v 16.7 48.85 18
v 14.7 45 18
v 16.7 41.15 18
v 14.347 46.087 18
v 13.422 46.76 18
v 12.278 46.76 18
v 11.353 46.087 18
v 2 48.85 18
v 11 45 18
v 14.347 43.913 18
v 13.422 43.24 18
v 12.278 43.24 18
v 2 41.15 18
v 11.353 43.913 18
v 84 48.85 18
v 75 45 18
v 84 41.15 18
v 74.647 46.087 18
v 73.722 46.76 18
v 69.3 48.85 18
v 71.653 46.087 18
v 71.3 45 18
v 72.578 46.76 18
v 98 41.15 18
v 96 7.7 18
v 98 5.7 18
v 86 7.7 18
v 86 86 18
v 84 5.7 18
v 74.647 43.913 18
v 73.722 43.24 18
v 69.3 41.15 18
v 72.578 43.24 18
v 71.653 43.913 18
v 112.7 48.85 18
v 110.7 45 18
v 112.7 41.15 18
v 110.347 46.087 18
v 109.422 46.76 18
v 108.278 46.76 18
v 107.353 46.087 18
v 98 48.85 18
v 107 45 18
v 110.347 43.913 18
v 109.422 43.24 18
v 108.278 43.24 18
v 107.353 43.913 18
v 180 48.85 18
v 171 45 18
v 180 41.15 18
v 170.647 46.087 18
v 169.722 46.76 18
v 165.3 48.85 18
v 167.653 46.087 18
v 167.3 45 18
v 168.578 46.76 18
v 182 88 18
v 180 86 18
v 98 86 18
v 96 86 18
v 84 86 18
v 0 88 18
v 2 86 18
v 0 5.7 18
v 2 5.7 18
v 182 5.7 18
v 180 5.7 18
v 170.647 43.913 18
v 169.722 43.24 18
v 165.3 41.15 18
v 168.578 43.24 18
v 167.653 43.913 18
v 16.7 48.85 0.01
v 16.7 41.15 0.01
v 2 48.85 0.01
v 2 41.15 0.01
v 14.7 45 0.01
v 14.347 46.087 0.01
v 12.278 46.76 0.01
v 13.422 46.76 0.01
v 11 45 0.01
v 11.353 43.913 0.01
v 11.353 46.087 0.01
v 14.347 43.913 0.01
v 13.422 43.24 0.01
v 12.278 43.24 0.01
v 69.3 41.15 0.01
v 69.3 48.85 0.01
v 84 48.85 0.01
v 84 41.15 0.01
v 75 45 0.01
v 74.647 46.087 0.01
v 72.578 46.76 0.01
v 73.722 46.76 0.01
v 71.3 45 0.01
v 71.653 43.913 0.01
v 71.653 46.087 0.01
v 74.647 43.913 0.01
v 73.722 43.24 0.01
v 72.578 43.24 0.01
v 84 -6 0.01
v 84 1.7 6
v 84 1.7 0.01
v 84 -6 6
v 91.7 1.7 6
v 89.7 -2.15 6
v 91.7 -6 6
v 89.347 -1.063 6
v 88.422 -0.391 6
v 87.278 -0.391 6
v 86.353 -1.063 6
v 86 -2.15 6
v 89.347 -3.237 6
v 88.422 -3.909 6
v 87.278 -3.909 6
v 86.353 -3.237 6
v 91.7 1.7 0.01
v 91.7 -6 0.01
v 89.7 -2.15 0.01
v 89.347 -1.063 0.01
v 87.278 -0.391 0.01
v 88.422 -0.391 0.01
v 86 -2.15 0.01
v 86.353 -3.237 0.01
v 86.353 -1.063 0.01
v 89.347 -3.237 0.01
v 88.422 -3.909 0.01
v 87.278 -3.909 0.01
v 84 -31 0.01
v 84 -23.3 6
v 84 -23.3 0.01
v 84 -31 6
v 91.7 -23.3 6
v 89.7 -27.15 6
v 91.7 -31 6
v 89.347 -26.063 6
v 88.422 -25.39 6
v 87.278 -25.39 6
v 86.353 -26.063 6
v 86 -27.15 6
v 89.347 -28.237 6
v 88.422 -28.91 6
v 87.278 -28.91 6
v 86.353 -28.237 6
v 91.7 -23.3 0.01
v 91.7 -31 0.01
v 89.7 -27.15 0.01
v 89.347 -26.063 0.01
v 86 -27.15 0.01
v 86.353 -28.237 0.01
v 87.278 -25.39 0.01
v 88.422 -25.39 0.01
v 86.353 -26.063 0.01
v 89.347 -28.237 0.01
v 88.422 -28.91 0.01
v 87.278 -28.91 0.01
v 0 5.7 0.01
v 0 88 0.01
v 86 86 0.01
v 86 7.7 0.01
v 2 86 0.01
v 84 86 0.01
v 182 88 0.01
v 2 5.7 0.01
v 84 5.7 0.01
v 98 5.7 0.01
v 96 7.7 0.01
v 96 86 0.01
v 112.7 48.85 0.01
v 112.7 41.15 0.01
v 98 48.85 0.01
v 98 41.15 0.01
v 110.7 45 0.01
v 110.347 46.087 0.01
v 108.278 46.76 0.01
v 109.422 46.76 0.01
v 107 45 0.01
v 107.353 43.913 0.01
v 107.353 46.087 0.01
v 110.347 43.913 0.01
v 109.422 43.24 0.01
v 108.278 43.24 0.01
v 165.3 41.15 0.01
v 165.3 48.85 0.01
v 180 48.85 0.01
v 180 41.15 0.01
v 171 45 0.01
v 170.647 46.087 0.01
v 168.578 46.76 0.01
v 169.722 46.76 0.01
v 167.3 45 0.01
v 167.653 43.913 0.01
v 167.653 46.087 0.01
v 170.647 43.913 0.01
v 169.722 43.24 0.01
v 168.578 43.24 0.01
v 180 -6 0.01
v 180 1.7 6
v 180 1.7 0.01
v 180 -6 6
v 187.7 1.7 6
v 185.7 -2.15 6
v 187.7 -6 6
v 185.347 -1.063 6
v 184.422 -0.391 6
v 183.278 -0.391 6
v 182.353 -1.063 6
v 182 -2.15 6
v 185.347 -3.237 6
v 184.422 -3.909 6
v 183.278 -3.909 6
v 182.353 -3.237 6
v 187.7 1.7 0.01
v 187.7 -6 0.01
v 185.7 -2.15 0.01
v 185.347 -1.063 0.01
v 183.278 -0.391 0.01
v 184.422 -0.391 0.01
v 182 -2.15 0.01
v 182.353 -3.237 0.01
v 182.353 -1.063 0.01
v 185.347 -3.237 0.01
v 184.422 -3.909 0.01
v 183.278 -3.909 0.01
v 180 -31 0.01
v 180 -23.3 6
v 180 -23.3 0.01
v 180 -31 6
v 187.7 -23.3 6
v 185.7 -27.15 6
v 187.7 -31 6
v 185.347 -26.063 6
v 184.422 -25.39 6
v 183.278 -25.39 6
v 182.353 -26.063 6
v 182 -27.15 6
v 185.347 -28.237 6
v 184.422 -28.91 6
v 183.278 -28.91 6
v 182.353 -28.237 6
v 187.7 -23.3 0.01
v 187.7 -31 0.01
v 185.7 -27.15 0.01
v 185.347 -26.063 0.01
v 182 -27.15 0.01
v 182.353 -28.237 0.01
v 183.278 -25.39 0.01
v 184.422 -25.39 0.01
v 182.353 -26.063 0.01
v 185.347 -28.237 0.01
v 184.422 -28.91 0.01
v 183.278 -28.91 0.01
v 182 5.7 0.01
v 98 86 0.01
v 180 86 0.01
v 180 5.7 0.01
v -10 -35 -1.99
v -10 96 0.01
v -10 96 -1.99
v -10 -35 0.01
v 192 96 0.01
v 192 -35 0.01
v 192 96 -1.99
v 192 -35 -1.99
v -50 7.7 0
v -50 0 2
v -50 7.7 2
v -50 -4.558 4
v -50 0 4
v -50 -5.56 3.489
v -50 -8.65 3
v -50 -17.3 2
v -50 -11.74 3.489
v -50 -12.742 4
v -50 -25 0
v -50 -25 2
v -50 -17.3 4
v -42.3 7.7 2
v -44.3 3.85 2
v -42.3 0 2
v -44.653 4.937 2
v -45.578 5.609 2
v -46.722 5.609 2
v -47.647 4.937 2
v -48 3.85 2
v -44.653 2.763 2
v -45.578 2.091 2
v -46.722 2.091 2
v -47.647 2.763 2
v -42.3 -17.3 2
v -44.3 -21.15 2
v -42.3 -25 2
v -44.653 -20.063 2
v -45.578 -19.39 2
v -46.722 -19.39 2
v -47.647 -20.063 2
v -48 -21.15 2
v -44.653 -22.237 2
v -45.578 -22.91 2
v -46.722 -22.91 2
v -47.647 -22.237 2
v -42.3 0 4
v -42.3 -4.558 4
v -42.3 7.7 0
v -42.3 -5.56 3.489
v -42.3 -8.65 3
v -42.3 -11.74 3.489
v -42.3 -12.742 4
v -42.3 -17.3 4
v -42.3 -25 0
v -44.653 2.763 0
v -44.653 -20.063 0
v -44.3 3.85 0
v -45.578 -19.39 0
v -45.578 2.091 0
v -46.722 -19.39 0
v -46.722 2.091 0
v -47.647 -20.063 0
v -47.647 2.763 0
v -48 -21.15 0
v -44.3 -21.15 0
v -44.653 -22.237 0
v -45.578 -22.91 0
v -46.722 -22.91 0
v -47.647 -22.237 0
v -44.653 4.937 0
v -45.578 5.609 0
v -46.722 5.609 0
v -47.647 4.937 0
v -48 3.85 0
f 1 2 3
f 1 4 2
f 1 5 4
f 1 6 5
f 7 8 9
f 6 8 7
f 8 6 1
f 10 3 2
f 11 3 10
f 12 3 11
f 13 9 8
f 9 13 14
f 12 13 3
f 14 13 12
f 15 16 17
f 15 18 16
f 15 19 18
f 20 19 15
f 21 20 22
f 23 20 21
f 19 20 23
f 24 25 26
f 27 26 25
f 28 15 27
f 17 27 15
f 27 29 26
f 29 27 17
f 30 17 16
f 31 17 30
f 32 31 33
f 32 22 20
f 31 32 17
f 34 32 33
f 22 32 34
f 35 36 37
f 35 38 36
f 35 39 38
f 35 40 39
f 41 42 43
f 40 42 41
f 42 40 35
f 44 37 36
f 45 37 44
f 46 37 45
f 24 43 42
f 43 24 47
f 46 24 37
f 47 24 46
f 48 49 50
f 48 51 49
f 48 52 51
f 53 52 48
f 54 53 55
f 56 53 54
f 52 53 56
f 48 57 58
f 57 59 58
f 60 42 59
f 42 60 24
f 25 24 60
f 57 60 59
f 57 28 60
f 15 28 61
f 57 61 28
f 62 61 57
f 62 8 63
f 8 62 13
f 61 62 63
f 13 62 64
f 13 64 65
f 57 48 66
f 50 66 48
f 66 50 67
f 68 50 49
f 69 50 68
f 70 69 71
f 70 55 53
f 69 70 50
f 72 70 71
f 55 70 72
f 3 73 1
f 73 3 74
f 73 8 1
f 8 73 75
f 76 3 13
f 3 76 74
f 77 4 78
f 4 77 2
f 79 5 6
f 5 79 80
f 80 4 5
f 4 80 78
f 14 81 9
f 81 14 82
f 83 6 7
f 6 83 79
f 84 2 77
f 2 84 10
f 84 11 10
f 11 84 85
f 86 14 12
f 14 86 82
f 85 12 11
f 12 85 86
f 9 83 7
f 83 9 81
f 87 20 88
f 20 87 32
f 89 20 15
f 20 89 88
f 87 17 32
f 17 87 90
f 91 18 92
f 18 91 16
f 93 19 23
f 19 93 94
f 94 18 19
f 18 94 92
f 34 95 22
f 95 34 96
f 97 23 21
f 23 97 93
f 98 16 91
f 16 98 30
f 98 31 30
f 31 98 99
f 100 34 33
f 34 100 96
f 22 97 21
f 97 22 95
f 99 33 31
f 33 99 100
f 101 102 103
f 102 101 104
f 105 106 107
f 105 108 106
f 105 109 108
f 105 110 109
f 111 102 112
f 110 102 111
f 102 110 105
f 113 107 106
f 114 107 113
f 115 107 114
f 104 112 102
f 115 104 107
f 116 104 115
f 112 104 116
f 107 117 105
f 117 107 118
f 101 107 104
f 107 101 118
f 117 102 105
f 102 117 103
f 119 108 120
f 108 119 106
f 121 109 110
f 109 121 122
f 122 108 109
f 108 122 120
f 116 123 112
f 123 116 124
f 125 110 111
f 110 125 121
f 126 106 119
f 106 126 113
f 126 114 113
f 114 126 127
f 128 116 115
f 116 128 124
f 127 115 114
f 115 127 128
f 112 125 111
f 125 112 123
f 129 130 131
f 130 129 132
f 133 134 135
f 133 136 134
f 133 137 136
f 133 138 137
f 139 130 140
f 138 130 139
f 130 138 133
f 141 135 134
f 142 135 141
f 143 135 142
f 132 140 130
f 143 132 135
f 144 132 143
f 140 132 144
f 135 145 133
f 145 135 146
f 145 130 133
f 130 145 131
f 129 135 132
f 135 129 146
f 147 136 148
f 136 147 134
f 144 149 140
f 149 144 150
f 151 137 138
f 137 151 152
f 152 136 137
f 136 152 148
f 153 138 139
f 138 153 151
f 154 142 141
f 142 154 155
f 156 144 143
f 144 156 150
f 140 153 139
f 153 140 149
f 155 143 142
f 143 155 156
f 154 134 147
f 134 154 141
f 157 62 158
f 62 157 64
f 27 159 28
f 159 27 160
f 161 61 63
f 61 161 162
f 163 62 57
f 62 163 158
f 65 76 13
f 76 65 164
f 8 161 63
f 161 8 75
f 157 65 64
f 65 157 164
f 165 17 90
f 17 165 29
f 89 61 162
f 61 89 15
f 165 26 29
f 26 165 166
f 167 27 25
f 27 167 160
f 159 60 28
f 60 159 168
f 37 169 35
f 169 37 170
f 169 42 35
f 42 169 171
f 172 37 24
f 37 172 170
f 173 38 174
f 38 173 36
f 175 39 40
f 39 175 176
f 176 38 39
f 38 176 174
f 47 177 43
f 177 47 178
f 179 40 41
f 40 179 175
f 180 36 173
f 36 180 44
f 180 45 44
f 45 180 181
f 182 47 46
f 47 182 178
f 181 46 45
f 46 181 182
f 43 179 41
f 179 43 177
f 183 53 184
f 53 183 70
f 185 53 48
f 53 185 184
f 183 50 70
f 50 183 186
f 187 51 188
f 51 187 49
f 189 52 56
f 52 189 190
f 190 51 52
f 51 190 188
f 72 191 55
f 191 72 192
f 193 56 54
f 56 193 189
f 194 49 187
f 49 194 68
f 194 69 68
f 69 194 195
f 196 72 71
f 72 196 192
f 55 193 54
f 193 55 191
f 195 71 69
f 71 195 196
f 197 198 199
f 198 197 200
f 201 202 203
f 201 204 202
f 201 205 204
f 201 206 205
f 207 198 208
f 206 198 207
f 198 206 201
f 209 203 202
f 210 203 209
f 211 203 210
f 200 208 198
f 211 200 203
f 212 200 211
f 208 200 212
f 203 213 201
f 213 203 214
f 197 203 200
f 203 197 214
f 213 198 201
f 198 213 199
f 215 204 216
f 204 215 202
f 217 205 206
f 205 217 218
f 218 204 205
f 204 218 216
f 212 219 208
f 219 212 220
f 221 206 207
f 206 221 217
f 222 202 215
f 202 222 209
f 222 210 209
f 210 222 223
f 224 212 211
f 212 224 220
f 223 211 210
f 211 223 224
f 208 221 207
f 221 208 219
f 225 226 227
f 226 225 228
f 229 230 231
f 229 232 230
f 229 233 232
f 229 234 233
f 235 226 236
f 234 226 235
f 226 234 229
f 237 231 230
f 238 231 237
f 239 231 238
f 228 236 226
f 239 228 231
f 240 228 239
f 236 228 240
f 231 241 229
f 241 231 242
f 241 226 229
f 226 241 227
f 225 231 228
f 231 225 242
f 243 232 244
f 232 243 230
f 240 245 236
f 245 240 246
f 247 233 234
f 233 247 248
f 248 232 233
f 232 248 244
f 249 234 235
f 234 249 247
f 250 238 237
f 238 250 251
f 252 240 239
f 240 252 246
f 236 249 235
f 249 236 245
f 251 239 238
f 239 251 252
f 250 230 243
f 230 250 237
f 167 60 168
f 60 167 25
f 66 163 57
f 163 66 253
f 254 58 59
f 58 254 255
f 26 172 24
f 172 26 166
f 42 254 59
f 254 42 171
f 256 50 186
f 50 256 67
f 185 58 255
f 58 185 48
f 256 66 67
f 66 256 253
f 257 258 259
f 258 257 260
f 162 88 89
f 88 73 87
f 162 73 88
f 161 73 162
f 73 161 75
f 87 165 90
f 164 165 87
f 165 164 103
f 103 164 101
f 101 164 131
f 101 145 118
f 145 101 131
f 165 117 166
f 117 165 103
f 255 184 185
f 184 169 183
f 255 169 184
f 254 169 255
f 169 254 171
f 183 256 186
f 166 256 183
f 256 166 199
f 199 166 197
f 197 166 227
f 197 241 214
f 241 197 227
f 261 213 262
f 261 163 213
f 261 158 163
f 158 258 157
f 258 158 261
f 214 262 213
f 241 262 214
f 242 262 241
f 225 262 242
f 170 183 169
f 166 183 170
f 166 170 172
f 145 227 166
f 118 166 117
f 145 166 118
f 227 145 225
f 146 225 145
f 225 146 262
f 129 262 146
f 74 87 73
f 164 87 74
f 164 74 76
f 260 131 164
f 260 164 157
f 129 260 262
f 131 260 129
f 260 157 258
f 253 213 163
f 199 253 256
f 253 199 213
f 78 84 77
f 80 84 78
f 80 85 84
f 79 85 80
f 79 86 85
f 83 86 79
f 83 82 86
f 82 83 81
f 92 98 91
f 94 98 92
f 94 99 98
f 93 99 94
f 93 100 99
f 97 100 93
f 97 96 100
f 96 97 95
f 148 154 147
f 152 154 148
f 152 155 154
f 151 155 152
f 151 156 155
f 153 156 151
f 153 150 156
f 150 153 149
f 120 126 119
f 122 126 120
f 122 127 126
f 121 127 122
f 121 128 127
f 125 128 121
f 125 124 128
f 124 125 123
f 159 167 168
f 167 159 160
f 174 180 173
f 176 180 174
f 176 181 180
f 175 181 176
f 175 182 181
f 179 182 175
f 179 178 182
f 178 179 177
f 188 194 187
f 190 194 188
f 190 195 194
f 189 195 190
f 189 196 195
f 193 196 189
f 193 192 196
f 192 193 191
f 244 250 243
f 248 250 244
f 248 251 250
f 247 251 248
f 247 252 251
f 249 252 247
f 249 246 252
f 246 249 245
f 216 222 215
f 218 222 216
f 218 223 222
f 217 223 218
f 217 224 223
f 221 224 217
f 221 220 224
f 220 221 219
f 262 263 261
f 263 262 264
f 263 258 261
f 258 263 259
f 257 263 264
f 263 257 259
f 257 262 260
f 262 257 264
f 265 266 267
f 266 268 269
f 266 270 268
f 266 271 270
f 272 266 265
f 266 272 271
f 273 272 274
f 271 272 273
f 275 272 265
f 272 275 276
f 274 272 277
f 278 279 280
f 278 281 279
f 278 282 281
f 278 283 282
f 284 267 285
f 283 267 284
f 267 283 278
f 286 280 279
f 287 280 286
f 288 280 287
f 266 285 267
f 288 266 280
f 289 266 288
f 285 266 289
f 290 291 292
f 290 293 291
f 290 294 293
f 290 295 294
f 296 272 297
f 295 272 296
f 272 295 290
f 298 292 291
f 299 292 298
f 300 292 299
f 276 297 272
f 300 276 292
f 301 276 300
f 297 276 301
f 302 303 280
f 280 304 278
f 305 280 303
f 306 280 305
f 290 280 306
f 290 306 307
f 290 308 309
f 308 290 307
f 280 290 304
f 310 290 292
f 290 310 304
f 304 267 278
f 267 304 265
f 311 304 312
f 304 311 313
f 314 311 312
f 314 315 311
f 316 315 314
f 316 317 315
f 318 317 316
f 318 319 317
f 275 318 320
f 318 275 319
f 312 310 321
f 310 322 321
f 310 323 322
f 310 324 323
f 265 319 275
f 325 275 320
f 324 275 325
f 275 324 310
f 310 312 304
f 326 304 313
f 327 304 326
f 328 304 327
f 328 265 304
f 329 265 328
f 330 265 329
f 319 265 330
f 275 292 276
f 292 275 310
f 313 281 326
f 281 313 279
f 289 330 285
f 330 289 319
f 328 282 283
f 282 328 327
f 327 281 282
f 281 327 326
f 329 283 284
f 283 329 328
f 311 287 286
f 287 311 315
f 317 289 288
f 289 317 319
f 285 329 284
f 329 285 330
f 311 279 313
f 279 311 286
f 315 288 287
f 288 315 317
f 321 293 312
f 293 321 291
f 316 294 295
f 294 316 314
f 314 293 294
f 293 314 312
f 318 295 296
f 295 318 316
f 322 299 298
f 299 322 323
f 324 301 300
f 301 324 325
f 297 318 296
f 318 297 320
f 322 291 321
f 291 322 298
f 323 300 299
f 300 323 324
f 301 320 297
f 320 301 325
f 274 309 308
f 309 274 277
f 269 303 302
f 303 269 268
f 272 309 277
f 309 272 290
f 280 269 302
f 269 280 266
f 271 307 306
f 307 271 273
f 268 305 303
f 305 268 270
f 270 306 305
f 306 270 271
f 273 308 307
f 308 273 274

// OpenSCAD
box_side = 86;
box_height = 18;
hole_distance = 60.3;
hole_diameter = 3.7;
grip_height = 6;
wall_thickness = 2.0;
base_thickness = 2.0;
gap = 10;
count = 2;
cable_grip_gap = 25;
cable_run_height = 25;
$fn = 10;
double = 0;
grip_thickness = 2.0;

hole_side_gap = (box_side - hole_distance)/2+wall_thickness;
grip_down = 6;
hole_box = hole_diameter+wall_thickness*2;
box_extra_down = grip_down/3-hole_box;
backing_width = box_side*count + gap*(count+1);
backing_height = box_side + gap*2 + cable_run_height;

module box(grip) {
    translate([0, box_side, 0])
    cube([box_side, wall_thickness, box_height]);
    translate([0, -box_extra_down, 0])cube([wall_thickness, box_side+box_extra_down+wall_thickness, box_height]);
    translate([(box_side-hole_box-hole_distance)/2, (box_side/2-hole_box/2)+wall_thickness, 0]) {
        difference() {
            translate([hole_box-hole_side_gap, 0, 0]) cube([hole_side_gap, hole_box, box_height]);
            translate([hole_box/2, hole_box/2]) cylinder(d=hole_diameter, h=box_height+1);
        }
        translate([hole_distance, 0, 0]) {
            difference() {
                cube([hole_side_gap, hole_box, box_height]);
                translate([hole_box/2, hole_box/2]) cylinder(d=hole_diameter, h=box_height+1);
            }
        }
    }
    translate([box_side - wall_thickness, 0, 0])
    translate([0, -box_extra_down, 0]) cube([wall_thickness, box_side+box_extra_down+wall_thickness, box_height]);
    
    if (grip) {
        translate([box_side - wall_thickness, -grip_down, 0]) {
            difference() {
                cube([hole_box, hole_box, grip_height]);
                translate([hole_box/2, hole_box/2]) cylinder(d=hole_diameter, h=box_height+1);
            }
            translate([0, -cable_grip_gap, 0])
            difference() {
                cube([hole_box, hole_box, grip_height]);
                translate([hole_box/2, hole_box/2]) cylinder(d=hole_diameter, h=box_height+1);
            }
        }
    }
}

module half(grip=true) {
    translate([-gap, -(gap+cable_run_height), -base_thickness+0.01]) cube([backing_width, backing_height, base_thickness]);
    for (i = [0 : 1 : count-1]) {
        translate([(box_side + gap)*i, 0, 0]) box(grip);
        if (i != count-1) {
            translate([(box_side + gap)*i+box_side-0.5, 0, 0]) {
                translate([0, -box_extra_down, 0]) cube([gap+1, wall_thickness, box_height]);
                translate([0, box_side, 0]) cube([gap+1, wall_thickness, box_height]);
            }
        }
    }
}

half();
if (double) {
    translate([backing_width-gap*2, -cable_run_height-grip_down*2/3, 0]) rotate(180) half(false);
}

module clip() {
    difference() {
            translate([0, -cable_grip_gap, 0]) cube([hole_box, hole_box+cable_grip_gap, grip_thickness]);
            translate([hole_box/2, hole_box/2]) cylinder(d=hole_diameter, h=box_height+1);
            translate([0, -cable_grip_gap, 0]) translate([hole_box/2, hole_box/2]) cylinder(d=hole_diameter, h=box_height+1);
        }
    spd=20;
    of = spd/2;
    translate([0, -cable_grip_gap+hole_box, grip_thickness])
    difference() {
        cube([hole_box, cable_grip_gap-hole_box, grip_thickness]);
        translate([hole_box+0.5, (cable_grip_gap-hole_box)/2, of+grip_thickness/2]) rotate([0, -90, 0]) cylinder(d=spd, h=hole_box+1, $fn=20);
    }
}

translate([-50, 0, 0]) {
    clip();
}
